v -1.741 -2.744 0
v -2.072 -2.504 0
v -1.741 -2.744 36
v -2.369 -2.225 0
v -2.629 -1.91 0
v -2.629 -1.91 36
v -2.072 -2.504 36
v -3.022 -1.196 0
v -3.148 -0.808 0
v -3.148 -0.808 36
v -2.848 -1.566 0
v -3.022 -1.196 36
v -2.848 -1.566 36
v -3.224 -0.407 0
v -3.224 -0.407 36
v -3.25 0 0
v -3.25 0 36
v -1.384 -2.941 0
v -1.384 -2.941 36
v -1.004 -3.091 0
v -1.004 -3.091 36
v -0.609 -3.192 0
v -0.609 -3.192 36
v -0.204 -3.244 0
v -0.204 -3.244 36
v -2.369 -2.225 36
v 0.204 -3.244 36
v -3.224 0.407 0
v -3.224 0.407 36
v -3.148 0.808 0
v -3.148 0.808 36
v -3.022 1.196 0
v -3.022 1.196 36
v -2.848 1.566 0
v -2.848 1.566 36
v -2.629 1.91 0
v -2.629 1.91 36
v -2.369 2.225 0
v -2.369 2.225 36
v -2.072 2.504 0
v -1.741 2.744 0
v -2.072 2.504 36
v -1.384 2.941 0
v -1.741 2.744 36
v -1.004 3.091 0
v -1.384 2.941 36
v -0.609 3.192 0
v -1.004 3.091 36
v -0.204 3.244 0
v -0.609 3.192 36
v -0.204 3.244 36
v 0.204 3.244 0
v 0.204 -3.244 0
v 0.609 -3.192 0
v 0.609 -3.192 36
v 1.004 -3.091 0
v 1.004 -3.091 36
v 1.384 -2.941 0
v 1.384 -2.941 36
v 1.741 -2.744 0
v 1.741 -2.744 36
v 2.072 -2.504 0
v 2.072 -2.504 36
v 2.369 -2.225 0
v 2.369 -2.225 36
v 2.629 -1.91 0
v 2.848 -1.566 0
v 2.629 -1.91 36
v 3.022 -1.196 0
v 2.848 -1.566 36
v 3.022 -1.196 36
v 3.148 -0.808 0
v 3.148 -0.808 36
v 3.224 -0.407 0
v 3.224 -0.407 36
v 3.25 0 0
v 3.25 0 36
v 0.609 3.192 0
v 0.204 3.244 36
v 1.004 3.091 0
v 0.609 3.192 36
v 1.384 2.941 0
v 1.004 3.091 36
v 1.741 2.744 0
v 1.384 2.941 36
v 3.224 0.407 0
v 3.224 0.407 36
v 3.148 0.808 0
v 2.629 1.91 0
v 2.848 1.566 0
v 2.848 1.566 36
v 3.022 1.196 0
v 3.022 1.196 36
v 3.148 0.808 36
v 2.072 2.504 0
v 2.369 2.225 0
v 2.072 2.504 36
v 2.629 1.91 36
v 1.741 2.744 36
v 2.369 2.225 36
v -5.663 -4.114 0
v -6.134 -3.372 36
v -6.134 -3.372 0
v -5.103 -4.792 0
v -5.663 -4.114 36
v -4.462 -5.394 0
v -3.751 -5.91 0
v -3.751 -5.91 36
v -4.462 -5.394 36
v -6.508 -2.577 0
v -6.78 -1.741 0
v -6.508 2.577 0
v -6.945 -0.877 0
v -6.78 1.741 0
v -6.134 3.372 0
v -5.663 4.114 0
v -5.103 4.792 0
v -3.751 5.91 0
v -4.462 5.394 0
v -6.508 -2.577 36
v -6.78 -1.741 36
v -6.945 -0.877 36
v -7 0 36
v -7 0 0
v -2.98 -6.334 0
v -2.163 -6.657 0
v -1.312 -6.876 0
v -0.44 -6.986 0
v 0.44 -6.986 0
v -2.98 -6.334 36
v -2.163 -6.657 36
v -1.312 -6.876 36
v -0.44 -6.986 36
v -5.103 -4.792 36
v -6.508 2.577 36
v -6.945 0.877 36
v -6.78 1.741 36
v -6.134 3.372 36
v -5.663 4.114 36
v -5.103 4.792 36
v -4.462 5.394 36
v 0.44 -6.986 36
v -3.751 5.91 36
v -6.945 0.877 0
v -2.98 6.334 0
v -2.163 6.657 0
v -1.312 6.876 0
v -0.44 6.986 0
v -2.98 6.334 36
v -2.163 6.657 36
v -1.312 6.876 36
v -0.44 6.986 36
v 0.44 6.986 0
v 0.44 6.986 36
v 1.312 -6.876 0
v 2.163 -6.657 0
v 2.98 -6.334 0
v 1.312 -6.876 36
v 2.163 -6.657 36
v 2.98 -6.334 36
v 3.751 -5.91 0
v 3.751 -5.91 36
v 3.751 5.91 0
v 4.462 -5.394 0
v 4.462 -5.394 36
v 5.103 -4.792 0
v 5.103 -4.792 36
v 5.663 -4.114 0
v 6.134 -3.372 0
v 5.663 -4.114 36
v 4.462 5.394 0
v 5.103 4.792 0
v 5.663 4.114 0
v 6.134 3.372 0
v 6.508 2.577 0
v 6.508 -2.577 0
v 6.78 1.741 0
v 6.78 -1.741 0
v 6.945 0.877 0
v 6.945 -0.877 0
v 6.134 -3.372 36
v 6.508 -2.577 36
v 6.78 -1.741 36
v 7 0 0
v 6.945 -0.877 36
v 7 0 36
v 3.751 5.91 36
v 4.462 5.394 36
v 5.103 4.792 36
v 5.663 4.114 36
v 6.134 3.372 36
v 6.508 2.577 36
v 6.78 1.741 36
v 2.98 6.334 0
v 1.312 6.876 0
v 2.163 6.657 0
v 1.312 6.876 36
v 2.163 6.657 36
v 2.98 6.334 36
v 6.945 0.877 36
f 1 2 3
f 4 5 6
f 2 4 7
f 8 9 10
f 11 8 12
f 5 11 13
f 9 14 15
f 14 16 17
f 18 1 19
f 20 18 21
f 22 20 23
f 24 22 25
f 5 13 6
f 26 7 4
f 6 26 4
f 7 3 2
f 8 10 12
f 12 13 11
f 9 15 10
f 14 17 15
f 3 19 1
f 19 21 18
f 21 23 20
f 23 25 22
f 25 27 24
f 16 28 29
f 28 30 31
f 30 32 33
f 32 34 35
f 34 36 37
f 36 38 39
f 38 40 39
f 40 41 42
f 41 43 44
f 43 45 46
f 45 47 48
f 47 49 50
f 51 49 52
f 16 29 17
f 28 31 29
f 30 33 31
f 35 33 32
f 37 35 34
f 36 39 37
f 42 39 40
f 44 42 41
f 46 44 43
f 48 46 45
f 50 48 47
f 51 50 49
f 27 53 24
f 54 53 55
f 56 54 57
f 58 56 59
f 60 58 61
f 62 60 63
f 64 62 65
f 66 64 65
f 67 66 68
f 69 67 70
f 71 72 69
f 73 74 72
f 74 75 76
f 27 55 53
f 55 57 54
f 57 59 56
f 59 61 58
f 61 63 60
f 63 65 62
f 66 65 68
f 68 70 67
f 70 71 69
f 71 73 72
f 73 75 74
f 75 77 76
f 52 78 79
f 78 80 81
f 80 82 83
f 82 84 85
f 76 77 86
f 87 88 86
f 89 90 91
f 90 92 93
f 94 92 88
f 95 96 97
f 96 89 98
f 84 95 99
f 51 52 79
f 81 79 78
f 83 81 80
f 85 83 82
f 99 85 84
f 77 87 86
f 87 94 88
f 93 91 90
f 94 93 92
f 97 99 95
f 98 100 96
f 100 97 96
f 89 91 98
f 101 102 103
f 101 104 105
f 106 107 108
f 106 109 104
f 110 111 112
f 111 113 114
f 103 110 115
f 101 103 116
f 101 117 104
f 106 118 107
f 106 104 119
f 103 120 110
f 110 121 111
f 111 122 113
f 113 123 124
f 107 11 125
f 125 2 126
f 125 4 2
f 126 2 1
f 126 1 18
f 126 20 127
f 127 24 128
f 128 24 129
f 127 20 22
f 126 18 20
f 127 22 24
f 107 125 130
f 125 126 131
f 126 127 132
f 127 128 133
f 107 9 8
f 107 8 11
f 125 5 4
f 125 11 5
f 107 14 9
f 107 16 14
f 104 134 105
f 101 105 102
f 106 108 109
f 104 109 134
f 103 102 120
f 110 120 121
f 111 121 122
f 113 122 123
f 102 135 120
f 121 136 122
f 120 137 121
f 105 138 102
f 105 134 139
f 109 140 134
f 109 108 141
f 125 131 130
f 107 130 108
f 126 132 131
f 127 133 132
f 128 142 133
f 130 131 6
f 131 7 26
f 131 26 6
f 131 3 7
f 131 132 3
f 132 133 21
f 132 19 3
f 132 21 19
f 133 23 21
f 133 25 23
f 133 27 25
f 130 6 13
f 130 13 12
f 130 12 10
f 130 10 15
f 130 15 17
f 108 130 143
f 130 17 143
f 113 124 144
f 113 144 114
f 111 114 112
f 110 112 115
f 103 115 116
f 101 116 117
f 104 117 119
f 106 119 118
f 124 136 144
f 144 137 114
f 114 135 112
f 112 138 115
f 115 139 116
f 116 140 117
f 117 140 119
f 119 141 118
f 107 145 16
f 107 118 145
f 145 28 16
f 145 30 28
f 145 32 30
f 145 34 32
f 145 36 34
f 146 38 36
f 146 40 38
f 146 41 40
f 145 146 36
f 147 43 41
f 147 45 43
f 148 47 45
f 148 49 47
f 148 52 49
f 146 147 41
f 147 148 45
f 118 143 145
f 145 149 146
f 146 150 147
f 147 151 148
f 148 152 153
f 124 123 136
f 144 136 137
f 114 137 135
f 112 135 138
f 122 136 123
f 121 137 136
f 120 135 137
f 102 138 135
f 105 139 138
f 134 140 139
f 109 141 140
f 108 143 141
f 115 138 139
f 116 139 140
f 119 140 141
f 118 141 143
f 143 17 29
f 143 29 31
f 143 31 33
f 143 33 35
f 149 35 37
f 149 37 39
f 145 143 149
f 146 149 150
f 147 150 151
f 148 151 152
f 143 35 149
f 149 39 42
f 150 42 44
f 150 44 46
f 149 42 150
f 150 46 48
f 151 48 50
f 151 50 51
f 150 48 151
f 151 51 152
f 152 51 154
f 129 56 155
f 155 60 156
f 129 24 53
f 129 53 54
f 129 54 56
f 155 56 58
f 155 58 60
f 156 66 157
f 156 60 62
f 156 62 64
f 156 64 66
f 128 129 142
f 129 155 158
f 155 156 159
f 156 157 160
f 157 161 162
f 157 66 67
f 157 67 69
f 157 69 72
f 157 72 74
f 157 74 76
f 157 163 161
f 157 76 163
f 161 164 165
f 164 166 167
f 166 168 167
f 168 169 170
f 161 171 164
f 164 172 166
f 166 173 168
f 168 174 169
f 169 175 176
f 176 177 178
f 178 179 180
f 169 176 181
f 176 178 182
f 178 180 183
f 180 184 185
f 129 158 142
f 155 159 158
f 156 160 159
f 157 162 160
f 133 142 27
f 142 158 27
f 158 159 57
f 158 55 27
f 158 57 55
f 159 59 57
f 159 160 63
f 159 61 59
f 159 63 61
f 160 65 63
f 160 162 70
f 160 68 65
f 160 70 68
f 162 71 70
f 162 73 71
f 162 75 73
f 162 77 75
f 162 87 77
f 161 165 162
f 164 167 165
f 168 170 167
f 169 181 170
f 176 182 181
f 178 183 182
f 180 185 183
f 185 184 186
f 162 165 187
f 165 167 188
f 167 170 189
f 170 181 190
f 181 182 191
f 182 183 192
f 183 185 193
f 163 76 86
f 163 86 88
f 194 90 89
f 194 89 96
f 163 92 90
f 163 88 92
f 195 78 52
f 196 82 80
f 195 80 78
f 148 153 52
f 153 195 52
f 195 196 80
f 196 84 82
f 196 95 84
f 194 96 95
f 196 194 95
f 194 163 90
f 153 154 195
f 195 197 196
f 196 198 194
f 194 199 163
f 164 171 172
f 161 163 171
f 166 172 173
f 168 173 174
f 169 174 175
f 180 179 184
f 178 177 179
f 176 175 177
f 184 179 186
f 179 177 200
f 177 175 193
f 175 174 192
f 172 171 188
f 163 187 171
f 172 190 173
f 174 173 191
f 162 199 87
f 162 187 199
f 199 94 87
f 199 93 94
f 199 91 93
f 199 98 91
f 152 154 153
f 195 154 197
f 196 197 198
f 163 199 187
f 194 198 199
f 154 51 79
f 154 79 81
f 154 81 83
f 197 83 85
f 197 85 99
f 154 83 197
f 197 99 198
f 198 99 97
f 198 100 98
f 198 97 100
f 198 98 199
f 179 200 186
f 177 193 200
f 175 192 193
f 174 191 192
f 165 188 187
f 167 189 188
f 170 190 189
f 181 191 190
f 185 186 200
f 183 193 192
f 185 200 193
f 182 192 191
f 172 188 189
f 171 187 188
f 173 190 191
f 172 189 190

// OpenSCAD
$fn = 50;

difference() {
	union() {
		cylinder(h = 36, r = 7.0);
	}
	union() {
		cylinder(h = 36, r = 3.25);
		cylinder(h = 36, r = 1.8);
	}
}
